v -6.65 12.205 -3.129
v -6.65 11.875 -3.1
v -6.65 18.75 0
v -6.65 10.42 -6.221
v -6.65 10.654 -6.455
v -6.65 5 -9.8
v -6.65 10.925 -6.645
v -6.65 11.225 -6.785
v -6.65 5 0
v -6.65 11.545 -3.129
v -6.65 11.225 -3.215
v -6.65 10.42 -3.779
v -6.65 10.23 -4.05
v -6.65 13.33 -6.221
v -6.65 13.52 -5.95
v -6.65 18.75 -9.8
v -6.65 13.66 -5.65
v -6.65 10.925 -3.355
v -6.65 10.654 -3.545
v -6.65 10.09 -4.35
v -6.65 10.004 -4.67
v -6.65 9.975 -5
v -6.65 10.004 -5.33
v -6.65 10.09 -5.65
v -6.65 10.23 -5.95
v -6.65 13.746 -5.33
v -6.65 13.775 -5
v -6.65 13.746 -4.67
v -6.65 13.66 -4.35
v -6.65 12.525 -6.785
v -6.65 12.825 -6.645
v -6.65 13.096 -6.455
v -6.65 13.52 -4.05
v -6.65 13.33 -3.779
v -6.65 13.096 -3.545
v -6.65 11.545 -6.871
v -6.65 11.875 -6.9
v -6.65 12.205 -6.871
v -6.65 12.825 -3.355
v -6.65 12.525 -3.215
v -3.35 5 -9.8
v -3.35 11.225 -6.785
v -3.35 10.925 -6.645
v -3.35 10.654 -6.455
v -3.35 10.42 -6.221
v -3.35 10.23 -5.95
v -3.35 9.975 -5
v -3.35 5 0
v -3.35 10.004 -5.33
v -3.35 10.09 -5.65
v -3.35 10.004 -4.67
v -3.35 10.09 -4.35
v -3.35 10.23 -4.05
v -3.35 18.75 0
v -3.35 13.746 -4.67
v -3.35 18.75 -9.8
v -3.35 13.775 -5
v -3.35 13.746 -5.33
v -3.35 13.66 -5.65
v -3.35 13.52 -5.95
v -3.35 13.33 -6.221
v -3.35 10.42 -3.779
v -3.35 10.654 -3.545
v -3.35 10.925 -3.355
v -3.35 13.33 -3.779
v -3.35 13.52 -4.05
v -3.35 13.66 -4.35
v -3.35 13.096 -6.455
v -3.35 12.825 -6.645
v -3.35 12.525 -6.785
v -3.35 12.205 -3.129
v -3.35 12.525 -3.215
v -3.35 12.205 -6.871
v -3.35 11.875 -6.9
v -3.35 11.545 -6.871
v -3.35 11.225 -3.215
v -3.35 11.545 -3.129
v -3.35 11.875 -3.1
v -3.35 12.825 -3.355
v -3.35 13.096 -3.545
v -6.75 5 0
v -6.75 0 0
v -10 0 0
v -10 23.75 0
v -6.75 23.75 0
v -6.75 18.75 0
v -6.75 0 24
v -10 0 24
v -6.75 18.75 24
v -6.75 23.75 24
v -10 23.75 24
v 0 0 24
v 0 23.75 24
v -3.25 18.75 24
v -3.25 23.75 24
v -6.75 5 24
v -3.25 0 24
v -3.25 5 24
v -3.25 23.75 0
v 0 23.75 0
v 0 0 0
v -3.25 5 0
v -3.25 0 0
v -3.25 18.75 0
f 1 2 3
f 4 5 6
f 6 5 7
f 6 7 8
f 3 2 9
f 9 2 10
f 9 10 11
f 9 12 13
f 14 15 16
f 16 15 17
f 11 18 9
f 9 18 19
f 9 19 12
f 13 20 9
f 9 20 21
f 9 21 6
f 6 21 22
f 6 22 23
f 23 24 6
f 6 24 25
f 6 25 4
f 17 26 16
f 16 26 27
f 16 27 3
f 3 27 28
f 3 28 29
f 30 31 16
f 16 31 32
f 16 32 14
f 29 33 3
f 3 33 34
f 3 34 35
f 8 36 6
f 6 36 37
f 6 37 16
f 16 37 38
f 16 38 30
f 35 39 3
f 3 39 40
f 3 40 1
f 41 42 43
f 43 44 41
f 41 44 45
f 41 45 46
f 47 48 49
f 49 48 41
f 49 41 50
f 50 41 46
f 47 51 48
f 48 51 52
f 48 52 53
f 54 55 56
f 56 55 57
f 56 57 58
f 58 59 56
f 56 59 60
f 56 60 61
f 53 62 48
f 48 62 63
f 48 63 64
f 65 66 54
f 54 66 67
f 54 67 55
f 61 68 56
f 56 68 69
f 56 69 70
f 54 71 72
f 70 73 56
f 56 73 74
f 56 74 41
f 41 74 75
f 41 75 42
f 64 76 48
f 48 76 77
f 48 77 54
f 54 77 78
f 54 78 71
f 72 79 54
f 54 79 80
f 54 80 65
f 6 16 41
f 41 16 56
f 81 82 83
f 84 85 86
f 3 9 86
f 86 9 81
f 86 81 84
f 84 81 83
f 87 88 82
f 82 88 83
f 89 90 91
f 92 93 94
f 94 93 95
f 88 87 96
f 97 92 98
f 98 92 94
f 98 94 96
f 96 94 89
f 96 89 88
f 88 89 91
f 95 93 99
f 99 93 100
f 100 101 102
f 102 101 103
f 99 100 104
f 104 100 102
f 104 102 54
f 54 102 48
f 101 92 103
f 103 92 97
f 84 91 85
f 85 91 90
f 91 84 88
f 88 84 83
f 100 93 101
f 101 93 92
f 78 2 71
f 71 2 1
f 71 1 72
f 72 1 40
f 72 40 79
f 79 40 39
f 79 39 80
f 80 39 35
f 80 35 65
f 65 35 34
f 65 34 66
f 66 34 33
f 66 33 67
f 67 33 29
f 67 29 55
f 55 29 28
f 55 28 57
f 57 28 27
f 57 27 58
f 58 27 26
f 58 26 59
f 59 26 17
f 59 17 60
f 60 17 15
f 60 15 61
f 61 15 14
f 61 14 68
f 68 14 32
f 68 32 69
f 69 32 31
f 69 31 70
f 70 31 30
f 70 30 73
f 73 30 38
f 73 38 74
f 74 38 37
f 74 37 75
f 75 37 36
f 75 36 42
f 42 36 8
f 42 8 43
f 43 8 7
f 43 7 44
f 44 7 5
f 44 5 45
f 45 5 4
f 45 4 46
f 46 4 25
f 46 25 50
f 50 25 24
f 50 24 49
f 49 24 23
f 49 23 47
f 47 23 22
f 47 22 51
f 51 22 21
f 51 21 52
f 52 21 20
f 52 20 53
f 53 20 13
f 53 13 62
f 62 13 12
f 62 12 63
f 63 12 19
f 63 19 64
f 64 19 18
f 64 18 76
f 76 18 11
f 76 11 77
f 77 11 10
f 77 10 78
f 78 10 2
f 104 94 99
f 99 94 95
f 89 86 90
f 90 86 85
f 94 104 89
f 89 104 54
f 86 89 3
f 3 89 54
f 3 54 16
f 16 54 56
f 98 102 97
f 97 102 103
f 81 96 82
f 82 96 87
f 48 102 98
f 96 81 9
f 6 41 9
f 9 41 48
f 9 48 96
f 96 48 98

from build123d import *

# Parameters (mm, degrees)
SKETCH1_W           = 23.75
SKETCH1_H           = 24
BOSS_EXTRUDE1_DEPTH = 10
SKETCH2_W           = 3.3
SKETCH2_H           = 9.8
BOSS_EXTRUDE2_DEPTH = 23.75
CUT_EXTRUDE1_REACH  = 36.413
SKETCH4_R           = 1.9
SKETCH5_W           = 3.5
SKETCH5_H           = 3.25
SKETCH5_H_2         = 17.5
SKETCH5_W_2         = 3.3
SKETCH5_H_3         = 9.8
CUT_EXTRUDE2_DEPTH  = 5


with BuildPart() as part:
    # Sketch1 → Boss-Extrude1 (new body)
    with BuildSketch(Plane.YZ):
        with Locations((11.875, 12)):
            Rectangle(SKETCH1_W, SKETCH1_H)
    extrude(amount=-BOSS_EXTRUDE1_DEPTH)

    # Sketch2 → Boss-Extrude2 (add, through all)
    with BuildSketch(Plane.XZ):
        with Locations((-5, -4.9)):
            Rectangle(SKETCH2_W, SKETCH2_H)
    extrude(amount=-BOSS_EXTRUDE2_DEPTH)

    # Sketch4 → Cut-Extrude1 (cut, up to next)
    with BuildSketch(Plane(origin=(-6.65, 0, 0), x_dir=(0, -1, 0), z_dir=(-1, 0, 0)), mode=Mode.PRIVATE) as cut_extrude1_sk1:
        with Locations(Location((-11.875, -5, 0), (0, 0, 90))):
            Circle(SKETCH4_R)
    cut_extrude1_tool1 = extrude(cut_extrude1_sk1.sketch, amount=-CUT_EXTRUDE1_REACH, mode=Mode.PRIVATE) & part.part
    add(cut_extrude1_tool1.solids().sort_by_distance((-6.65, 11.875, -5))[0], mode=Mode.SUBTRACT)

    # Sketch5 → Cut-Extrude2 (cut)
    with BuildSketch(Plane(origin=(0, 23.75, 0), x_dir=(-1, 0, 0), z_dir=(0, 1, 0))):
        with Locations((5, 22.375)):
            Rectangle(SKETCH5_W, SKETCH5_H)
        with Locations((5, 12)):
            Rectangle(SKETCH5_W, SKETCH5_H_2)
        Polygon((6.75, 3.25), (3.25, 3.25), (3.25, 0), (3.35, 0), (6.65, 0), (6.75, 0), align=None)
        with Locations((5, -4.9)):
            Rectangle(SKETCH5_W_2, SKETCH5_H_3)
    cut_extrude2 = extrude(amount=-CUT_EXTRUDE2_DEPTH, mode=Mode.SUBTRACT)

    # Mirror1: Cut-Extrude2 across plane
    add(cut_extrude2.mirror(Plane.ZX.offset(11.875)), mode=Mode.SUBTRACT)


solid = part.part
